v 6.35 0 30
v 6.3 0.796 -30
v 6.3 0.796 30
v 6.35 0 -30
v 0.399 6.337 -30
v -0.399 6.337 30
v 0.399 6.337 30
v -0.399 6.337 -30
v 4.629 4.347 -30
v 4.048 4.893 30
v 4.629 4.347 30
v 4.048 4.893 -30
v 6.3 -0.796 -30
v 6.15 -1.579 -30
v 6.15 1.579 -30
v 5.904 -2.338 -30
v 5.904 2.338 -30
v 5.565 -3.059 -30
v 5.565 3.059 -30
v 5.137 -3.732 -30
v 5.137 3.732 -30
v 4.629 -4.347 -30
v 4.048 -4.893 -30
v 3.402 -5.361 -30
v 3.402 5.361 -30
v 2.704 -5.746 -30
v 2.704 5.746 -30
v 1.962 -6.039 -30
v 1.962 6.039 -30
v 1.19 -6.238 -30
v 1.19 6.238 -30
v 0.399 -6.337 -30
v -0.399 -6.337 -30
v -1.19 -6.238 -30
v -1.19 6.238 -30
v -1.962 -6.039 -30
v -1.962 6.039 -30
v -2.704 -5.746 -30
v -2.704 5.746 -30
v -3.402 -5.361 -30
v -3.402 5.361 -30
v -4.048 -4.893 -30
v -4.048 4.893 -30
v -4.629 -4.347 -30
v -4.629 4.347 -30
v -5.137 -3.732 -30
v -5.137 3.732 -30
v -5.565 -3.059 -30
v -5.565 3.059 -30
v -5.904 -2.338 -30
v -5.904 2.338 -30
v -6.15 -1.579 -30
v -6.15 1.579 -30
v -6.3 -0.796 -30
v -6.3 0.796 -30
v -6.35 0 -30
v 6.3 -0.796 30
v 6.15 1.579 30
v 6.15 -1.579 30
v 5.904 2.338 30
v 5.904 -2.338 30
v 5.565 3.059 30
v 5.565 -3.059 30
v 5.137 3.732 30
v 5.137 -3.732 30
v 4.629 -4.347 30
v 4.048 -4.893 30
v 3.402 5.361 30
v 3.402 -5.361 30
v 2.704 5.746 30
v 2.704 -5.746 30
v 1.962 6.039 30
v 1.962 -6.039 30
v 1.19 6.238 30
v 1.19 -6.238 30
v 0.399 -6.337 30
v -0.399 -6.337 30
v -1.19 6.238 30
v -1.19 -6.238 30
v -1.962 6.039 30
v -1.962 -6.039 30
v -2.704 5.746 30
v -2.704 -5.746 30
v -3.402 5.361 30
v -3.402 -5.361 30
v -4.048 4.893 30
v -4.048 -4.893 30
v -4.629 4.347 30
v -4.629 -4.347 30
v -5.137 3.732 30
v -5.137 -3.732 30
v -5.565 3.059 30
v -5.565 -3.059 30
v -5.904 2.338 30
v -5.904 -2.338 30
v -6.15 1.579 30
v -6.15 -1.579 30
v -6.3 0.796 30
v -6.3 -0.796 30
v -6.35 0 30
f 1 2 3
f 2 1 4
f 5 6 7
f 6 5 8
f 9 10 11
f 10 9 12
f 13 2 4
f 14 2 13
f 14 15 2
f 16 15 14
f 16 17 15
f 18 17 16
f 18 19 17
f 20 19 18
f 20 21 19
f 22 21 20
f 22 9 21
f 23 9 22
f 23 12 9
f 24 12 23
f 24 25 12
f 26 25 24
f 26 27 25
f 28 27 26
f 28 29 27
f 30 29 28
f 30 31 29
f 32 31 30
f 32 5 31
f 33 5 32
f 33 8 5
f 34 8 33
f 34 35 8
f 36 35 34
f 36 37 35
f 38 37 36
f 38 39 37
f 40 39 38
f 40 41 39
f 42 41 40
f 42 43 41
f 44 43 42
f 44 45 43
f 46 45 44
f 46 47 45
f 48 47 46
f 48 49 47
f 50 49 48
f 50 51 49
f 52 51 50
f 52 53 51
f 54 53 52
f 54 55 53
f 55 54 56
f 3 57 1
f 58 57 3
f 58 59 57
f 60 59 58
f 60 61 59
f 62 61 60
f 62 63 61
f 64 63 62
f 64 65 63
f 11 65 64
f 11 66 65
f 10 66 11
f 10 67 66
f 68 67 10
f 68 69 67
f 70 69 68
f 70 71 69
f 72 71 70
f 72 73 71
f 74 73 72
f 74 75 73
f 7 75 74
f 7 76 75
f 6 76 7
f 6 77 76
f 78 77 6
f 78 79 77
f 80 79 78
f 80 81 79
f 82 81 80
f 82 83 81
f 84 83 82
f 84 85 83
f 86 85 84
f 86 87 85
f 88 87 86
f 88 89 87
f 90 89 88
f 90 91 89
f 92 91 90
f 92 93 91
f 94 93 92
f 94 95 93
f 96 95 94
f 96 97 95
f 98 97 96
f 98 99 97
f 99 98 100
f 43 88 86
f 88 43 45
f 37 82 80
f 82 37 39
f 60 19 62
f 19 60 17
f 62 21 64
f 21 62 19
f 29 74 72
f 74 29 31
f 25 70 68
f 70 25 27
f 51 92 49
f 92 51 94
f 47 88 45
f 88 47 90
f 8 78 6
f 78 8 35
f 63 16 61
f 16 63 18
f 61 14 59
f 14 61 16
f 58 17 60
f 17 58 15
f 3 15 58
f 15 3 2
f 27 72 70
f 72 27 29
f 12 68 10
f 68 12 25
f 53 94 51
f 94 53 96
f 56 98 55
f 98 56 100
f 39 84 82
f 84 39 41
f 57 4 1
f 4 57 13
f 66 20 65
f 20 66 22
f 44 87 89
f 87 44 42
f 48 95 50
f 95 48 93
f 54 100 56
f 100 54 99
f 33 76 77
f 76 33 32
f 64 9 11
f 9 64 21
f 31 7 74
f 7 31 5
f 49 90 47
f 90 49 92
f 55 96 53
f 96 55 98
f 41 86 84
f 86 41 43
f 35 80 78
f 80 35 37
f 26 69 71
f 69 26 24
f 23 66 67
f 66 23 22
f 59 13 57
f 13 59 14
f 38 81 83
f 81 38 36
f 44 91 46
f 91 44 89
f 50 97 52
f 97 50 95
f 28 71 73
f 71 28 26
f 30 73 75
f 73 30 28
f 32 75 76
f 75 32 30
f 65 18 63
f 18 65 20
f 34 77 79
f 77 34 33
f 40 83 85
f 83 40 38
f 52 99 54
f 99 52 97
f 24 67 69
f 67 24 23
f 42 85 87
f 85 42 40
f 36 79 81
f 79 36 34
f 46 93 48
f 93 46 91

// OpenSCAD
$fn = 50;


difference() {
	union() {
		translate(v = [0, 0, -30.0000000000]) {
			cylinder(h = 60, r = 6.3500000000);
		}
	}
	union() {
		translate(v = [0, 0, -100.0000000000]) {
			cylinder(h = 200, r = 0);
		}
	}
}
